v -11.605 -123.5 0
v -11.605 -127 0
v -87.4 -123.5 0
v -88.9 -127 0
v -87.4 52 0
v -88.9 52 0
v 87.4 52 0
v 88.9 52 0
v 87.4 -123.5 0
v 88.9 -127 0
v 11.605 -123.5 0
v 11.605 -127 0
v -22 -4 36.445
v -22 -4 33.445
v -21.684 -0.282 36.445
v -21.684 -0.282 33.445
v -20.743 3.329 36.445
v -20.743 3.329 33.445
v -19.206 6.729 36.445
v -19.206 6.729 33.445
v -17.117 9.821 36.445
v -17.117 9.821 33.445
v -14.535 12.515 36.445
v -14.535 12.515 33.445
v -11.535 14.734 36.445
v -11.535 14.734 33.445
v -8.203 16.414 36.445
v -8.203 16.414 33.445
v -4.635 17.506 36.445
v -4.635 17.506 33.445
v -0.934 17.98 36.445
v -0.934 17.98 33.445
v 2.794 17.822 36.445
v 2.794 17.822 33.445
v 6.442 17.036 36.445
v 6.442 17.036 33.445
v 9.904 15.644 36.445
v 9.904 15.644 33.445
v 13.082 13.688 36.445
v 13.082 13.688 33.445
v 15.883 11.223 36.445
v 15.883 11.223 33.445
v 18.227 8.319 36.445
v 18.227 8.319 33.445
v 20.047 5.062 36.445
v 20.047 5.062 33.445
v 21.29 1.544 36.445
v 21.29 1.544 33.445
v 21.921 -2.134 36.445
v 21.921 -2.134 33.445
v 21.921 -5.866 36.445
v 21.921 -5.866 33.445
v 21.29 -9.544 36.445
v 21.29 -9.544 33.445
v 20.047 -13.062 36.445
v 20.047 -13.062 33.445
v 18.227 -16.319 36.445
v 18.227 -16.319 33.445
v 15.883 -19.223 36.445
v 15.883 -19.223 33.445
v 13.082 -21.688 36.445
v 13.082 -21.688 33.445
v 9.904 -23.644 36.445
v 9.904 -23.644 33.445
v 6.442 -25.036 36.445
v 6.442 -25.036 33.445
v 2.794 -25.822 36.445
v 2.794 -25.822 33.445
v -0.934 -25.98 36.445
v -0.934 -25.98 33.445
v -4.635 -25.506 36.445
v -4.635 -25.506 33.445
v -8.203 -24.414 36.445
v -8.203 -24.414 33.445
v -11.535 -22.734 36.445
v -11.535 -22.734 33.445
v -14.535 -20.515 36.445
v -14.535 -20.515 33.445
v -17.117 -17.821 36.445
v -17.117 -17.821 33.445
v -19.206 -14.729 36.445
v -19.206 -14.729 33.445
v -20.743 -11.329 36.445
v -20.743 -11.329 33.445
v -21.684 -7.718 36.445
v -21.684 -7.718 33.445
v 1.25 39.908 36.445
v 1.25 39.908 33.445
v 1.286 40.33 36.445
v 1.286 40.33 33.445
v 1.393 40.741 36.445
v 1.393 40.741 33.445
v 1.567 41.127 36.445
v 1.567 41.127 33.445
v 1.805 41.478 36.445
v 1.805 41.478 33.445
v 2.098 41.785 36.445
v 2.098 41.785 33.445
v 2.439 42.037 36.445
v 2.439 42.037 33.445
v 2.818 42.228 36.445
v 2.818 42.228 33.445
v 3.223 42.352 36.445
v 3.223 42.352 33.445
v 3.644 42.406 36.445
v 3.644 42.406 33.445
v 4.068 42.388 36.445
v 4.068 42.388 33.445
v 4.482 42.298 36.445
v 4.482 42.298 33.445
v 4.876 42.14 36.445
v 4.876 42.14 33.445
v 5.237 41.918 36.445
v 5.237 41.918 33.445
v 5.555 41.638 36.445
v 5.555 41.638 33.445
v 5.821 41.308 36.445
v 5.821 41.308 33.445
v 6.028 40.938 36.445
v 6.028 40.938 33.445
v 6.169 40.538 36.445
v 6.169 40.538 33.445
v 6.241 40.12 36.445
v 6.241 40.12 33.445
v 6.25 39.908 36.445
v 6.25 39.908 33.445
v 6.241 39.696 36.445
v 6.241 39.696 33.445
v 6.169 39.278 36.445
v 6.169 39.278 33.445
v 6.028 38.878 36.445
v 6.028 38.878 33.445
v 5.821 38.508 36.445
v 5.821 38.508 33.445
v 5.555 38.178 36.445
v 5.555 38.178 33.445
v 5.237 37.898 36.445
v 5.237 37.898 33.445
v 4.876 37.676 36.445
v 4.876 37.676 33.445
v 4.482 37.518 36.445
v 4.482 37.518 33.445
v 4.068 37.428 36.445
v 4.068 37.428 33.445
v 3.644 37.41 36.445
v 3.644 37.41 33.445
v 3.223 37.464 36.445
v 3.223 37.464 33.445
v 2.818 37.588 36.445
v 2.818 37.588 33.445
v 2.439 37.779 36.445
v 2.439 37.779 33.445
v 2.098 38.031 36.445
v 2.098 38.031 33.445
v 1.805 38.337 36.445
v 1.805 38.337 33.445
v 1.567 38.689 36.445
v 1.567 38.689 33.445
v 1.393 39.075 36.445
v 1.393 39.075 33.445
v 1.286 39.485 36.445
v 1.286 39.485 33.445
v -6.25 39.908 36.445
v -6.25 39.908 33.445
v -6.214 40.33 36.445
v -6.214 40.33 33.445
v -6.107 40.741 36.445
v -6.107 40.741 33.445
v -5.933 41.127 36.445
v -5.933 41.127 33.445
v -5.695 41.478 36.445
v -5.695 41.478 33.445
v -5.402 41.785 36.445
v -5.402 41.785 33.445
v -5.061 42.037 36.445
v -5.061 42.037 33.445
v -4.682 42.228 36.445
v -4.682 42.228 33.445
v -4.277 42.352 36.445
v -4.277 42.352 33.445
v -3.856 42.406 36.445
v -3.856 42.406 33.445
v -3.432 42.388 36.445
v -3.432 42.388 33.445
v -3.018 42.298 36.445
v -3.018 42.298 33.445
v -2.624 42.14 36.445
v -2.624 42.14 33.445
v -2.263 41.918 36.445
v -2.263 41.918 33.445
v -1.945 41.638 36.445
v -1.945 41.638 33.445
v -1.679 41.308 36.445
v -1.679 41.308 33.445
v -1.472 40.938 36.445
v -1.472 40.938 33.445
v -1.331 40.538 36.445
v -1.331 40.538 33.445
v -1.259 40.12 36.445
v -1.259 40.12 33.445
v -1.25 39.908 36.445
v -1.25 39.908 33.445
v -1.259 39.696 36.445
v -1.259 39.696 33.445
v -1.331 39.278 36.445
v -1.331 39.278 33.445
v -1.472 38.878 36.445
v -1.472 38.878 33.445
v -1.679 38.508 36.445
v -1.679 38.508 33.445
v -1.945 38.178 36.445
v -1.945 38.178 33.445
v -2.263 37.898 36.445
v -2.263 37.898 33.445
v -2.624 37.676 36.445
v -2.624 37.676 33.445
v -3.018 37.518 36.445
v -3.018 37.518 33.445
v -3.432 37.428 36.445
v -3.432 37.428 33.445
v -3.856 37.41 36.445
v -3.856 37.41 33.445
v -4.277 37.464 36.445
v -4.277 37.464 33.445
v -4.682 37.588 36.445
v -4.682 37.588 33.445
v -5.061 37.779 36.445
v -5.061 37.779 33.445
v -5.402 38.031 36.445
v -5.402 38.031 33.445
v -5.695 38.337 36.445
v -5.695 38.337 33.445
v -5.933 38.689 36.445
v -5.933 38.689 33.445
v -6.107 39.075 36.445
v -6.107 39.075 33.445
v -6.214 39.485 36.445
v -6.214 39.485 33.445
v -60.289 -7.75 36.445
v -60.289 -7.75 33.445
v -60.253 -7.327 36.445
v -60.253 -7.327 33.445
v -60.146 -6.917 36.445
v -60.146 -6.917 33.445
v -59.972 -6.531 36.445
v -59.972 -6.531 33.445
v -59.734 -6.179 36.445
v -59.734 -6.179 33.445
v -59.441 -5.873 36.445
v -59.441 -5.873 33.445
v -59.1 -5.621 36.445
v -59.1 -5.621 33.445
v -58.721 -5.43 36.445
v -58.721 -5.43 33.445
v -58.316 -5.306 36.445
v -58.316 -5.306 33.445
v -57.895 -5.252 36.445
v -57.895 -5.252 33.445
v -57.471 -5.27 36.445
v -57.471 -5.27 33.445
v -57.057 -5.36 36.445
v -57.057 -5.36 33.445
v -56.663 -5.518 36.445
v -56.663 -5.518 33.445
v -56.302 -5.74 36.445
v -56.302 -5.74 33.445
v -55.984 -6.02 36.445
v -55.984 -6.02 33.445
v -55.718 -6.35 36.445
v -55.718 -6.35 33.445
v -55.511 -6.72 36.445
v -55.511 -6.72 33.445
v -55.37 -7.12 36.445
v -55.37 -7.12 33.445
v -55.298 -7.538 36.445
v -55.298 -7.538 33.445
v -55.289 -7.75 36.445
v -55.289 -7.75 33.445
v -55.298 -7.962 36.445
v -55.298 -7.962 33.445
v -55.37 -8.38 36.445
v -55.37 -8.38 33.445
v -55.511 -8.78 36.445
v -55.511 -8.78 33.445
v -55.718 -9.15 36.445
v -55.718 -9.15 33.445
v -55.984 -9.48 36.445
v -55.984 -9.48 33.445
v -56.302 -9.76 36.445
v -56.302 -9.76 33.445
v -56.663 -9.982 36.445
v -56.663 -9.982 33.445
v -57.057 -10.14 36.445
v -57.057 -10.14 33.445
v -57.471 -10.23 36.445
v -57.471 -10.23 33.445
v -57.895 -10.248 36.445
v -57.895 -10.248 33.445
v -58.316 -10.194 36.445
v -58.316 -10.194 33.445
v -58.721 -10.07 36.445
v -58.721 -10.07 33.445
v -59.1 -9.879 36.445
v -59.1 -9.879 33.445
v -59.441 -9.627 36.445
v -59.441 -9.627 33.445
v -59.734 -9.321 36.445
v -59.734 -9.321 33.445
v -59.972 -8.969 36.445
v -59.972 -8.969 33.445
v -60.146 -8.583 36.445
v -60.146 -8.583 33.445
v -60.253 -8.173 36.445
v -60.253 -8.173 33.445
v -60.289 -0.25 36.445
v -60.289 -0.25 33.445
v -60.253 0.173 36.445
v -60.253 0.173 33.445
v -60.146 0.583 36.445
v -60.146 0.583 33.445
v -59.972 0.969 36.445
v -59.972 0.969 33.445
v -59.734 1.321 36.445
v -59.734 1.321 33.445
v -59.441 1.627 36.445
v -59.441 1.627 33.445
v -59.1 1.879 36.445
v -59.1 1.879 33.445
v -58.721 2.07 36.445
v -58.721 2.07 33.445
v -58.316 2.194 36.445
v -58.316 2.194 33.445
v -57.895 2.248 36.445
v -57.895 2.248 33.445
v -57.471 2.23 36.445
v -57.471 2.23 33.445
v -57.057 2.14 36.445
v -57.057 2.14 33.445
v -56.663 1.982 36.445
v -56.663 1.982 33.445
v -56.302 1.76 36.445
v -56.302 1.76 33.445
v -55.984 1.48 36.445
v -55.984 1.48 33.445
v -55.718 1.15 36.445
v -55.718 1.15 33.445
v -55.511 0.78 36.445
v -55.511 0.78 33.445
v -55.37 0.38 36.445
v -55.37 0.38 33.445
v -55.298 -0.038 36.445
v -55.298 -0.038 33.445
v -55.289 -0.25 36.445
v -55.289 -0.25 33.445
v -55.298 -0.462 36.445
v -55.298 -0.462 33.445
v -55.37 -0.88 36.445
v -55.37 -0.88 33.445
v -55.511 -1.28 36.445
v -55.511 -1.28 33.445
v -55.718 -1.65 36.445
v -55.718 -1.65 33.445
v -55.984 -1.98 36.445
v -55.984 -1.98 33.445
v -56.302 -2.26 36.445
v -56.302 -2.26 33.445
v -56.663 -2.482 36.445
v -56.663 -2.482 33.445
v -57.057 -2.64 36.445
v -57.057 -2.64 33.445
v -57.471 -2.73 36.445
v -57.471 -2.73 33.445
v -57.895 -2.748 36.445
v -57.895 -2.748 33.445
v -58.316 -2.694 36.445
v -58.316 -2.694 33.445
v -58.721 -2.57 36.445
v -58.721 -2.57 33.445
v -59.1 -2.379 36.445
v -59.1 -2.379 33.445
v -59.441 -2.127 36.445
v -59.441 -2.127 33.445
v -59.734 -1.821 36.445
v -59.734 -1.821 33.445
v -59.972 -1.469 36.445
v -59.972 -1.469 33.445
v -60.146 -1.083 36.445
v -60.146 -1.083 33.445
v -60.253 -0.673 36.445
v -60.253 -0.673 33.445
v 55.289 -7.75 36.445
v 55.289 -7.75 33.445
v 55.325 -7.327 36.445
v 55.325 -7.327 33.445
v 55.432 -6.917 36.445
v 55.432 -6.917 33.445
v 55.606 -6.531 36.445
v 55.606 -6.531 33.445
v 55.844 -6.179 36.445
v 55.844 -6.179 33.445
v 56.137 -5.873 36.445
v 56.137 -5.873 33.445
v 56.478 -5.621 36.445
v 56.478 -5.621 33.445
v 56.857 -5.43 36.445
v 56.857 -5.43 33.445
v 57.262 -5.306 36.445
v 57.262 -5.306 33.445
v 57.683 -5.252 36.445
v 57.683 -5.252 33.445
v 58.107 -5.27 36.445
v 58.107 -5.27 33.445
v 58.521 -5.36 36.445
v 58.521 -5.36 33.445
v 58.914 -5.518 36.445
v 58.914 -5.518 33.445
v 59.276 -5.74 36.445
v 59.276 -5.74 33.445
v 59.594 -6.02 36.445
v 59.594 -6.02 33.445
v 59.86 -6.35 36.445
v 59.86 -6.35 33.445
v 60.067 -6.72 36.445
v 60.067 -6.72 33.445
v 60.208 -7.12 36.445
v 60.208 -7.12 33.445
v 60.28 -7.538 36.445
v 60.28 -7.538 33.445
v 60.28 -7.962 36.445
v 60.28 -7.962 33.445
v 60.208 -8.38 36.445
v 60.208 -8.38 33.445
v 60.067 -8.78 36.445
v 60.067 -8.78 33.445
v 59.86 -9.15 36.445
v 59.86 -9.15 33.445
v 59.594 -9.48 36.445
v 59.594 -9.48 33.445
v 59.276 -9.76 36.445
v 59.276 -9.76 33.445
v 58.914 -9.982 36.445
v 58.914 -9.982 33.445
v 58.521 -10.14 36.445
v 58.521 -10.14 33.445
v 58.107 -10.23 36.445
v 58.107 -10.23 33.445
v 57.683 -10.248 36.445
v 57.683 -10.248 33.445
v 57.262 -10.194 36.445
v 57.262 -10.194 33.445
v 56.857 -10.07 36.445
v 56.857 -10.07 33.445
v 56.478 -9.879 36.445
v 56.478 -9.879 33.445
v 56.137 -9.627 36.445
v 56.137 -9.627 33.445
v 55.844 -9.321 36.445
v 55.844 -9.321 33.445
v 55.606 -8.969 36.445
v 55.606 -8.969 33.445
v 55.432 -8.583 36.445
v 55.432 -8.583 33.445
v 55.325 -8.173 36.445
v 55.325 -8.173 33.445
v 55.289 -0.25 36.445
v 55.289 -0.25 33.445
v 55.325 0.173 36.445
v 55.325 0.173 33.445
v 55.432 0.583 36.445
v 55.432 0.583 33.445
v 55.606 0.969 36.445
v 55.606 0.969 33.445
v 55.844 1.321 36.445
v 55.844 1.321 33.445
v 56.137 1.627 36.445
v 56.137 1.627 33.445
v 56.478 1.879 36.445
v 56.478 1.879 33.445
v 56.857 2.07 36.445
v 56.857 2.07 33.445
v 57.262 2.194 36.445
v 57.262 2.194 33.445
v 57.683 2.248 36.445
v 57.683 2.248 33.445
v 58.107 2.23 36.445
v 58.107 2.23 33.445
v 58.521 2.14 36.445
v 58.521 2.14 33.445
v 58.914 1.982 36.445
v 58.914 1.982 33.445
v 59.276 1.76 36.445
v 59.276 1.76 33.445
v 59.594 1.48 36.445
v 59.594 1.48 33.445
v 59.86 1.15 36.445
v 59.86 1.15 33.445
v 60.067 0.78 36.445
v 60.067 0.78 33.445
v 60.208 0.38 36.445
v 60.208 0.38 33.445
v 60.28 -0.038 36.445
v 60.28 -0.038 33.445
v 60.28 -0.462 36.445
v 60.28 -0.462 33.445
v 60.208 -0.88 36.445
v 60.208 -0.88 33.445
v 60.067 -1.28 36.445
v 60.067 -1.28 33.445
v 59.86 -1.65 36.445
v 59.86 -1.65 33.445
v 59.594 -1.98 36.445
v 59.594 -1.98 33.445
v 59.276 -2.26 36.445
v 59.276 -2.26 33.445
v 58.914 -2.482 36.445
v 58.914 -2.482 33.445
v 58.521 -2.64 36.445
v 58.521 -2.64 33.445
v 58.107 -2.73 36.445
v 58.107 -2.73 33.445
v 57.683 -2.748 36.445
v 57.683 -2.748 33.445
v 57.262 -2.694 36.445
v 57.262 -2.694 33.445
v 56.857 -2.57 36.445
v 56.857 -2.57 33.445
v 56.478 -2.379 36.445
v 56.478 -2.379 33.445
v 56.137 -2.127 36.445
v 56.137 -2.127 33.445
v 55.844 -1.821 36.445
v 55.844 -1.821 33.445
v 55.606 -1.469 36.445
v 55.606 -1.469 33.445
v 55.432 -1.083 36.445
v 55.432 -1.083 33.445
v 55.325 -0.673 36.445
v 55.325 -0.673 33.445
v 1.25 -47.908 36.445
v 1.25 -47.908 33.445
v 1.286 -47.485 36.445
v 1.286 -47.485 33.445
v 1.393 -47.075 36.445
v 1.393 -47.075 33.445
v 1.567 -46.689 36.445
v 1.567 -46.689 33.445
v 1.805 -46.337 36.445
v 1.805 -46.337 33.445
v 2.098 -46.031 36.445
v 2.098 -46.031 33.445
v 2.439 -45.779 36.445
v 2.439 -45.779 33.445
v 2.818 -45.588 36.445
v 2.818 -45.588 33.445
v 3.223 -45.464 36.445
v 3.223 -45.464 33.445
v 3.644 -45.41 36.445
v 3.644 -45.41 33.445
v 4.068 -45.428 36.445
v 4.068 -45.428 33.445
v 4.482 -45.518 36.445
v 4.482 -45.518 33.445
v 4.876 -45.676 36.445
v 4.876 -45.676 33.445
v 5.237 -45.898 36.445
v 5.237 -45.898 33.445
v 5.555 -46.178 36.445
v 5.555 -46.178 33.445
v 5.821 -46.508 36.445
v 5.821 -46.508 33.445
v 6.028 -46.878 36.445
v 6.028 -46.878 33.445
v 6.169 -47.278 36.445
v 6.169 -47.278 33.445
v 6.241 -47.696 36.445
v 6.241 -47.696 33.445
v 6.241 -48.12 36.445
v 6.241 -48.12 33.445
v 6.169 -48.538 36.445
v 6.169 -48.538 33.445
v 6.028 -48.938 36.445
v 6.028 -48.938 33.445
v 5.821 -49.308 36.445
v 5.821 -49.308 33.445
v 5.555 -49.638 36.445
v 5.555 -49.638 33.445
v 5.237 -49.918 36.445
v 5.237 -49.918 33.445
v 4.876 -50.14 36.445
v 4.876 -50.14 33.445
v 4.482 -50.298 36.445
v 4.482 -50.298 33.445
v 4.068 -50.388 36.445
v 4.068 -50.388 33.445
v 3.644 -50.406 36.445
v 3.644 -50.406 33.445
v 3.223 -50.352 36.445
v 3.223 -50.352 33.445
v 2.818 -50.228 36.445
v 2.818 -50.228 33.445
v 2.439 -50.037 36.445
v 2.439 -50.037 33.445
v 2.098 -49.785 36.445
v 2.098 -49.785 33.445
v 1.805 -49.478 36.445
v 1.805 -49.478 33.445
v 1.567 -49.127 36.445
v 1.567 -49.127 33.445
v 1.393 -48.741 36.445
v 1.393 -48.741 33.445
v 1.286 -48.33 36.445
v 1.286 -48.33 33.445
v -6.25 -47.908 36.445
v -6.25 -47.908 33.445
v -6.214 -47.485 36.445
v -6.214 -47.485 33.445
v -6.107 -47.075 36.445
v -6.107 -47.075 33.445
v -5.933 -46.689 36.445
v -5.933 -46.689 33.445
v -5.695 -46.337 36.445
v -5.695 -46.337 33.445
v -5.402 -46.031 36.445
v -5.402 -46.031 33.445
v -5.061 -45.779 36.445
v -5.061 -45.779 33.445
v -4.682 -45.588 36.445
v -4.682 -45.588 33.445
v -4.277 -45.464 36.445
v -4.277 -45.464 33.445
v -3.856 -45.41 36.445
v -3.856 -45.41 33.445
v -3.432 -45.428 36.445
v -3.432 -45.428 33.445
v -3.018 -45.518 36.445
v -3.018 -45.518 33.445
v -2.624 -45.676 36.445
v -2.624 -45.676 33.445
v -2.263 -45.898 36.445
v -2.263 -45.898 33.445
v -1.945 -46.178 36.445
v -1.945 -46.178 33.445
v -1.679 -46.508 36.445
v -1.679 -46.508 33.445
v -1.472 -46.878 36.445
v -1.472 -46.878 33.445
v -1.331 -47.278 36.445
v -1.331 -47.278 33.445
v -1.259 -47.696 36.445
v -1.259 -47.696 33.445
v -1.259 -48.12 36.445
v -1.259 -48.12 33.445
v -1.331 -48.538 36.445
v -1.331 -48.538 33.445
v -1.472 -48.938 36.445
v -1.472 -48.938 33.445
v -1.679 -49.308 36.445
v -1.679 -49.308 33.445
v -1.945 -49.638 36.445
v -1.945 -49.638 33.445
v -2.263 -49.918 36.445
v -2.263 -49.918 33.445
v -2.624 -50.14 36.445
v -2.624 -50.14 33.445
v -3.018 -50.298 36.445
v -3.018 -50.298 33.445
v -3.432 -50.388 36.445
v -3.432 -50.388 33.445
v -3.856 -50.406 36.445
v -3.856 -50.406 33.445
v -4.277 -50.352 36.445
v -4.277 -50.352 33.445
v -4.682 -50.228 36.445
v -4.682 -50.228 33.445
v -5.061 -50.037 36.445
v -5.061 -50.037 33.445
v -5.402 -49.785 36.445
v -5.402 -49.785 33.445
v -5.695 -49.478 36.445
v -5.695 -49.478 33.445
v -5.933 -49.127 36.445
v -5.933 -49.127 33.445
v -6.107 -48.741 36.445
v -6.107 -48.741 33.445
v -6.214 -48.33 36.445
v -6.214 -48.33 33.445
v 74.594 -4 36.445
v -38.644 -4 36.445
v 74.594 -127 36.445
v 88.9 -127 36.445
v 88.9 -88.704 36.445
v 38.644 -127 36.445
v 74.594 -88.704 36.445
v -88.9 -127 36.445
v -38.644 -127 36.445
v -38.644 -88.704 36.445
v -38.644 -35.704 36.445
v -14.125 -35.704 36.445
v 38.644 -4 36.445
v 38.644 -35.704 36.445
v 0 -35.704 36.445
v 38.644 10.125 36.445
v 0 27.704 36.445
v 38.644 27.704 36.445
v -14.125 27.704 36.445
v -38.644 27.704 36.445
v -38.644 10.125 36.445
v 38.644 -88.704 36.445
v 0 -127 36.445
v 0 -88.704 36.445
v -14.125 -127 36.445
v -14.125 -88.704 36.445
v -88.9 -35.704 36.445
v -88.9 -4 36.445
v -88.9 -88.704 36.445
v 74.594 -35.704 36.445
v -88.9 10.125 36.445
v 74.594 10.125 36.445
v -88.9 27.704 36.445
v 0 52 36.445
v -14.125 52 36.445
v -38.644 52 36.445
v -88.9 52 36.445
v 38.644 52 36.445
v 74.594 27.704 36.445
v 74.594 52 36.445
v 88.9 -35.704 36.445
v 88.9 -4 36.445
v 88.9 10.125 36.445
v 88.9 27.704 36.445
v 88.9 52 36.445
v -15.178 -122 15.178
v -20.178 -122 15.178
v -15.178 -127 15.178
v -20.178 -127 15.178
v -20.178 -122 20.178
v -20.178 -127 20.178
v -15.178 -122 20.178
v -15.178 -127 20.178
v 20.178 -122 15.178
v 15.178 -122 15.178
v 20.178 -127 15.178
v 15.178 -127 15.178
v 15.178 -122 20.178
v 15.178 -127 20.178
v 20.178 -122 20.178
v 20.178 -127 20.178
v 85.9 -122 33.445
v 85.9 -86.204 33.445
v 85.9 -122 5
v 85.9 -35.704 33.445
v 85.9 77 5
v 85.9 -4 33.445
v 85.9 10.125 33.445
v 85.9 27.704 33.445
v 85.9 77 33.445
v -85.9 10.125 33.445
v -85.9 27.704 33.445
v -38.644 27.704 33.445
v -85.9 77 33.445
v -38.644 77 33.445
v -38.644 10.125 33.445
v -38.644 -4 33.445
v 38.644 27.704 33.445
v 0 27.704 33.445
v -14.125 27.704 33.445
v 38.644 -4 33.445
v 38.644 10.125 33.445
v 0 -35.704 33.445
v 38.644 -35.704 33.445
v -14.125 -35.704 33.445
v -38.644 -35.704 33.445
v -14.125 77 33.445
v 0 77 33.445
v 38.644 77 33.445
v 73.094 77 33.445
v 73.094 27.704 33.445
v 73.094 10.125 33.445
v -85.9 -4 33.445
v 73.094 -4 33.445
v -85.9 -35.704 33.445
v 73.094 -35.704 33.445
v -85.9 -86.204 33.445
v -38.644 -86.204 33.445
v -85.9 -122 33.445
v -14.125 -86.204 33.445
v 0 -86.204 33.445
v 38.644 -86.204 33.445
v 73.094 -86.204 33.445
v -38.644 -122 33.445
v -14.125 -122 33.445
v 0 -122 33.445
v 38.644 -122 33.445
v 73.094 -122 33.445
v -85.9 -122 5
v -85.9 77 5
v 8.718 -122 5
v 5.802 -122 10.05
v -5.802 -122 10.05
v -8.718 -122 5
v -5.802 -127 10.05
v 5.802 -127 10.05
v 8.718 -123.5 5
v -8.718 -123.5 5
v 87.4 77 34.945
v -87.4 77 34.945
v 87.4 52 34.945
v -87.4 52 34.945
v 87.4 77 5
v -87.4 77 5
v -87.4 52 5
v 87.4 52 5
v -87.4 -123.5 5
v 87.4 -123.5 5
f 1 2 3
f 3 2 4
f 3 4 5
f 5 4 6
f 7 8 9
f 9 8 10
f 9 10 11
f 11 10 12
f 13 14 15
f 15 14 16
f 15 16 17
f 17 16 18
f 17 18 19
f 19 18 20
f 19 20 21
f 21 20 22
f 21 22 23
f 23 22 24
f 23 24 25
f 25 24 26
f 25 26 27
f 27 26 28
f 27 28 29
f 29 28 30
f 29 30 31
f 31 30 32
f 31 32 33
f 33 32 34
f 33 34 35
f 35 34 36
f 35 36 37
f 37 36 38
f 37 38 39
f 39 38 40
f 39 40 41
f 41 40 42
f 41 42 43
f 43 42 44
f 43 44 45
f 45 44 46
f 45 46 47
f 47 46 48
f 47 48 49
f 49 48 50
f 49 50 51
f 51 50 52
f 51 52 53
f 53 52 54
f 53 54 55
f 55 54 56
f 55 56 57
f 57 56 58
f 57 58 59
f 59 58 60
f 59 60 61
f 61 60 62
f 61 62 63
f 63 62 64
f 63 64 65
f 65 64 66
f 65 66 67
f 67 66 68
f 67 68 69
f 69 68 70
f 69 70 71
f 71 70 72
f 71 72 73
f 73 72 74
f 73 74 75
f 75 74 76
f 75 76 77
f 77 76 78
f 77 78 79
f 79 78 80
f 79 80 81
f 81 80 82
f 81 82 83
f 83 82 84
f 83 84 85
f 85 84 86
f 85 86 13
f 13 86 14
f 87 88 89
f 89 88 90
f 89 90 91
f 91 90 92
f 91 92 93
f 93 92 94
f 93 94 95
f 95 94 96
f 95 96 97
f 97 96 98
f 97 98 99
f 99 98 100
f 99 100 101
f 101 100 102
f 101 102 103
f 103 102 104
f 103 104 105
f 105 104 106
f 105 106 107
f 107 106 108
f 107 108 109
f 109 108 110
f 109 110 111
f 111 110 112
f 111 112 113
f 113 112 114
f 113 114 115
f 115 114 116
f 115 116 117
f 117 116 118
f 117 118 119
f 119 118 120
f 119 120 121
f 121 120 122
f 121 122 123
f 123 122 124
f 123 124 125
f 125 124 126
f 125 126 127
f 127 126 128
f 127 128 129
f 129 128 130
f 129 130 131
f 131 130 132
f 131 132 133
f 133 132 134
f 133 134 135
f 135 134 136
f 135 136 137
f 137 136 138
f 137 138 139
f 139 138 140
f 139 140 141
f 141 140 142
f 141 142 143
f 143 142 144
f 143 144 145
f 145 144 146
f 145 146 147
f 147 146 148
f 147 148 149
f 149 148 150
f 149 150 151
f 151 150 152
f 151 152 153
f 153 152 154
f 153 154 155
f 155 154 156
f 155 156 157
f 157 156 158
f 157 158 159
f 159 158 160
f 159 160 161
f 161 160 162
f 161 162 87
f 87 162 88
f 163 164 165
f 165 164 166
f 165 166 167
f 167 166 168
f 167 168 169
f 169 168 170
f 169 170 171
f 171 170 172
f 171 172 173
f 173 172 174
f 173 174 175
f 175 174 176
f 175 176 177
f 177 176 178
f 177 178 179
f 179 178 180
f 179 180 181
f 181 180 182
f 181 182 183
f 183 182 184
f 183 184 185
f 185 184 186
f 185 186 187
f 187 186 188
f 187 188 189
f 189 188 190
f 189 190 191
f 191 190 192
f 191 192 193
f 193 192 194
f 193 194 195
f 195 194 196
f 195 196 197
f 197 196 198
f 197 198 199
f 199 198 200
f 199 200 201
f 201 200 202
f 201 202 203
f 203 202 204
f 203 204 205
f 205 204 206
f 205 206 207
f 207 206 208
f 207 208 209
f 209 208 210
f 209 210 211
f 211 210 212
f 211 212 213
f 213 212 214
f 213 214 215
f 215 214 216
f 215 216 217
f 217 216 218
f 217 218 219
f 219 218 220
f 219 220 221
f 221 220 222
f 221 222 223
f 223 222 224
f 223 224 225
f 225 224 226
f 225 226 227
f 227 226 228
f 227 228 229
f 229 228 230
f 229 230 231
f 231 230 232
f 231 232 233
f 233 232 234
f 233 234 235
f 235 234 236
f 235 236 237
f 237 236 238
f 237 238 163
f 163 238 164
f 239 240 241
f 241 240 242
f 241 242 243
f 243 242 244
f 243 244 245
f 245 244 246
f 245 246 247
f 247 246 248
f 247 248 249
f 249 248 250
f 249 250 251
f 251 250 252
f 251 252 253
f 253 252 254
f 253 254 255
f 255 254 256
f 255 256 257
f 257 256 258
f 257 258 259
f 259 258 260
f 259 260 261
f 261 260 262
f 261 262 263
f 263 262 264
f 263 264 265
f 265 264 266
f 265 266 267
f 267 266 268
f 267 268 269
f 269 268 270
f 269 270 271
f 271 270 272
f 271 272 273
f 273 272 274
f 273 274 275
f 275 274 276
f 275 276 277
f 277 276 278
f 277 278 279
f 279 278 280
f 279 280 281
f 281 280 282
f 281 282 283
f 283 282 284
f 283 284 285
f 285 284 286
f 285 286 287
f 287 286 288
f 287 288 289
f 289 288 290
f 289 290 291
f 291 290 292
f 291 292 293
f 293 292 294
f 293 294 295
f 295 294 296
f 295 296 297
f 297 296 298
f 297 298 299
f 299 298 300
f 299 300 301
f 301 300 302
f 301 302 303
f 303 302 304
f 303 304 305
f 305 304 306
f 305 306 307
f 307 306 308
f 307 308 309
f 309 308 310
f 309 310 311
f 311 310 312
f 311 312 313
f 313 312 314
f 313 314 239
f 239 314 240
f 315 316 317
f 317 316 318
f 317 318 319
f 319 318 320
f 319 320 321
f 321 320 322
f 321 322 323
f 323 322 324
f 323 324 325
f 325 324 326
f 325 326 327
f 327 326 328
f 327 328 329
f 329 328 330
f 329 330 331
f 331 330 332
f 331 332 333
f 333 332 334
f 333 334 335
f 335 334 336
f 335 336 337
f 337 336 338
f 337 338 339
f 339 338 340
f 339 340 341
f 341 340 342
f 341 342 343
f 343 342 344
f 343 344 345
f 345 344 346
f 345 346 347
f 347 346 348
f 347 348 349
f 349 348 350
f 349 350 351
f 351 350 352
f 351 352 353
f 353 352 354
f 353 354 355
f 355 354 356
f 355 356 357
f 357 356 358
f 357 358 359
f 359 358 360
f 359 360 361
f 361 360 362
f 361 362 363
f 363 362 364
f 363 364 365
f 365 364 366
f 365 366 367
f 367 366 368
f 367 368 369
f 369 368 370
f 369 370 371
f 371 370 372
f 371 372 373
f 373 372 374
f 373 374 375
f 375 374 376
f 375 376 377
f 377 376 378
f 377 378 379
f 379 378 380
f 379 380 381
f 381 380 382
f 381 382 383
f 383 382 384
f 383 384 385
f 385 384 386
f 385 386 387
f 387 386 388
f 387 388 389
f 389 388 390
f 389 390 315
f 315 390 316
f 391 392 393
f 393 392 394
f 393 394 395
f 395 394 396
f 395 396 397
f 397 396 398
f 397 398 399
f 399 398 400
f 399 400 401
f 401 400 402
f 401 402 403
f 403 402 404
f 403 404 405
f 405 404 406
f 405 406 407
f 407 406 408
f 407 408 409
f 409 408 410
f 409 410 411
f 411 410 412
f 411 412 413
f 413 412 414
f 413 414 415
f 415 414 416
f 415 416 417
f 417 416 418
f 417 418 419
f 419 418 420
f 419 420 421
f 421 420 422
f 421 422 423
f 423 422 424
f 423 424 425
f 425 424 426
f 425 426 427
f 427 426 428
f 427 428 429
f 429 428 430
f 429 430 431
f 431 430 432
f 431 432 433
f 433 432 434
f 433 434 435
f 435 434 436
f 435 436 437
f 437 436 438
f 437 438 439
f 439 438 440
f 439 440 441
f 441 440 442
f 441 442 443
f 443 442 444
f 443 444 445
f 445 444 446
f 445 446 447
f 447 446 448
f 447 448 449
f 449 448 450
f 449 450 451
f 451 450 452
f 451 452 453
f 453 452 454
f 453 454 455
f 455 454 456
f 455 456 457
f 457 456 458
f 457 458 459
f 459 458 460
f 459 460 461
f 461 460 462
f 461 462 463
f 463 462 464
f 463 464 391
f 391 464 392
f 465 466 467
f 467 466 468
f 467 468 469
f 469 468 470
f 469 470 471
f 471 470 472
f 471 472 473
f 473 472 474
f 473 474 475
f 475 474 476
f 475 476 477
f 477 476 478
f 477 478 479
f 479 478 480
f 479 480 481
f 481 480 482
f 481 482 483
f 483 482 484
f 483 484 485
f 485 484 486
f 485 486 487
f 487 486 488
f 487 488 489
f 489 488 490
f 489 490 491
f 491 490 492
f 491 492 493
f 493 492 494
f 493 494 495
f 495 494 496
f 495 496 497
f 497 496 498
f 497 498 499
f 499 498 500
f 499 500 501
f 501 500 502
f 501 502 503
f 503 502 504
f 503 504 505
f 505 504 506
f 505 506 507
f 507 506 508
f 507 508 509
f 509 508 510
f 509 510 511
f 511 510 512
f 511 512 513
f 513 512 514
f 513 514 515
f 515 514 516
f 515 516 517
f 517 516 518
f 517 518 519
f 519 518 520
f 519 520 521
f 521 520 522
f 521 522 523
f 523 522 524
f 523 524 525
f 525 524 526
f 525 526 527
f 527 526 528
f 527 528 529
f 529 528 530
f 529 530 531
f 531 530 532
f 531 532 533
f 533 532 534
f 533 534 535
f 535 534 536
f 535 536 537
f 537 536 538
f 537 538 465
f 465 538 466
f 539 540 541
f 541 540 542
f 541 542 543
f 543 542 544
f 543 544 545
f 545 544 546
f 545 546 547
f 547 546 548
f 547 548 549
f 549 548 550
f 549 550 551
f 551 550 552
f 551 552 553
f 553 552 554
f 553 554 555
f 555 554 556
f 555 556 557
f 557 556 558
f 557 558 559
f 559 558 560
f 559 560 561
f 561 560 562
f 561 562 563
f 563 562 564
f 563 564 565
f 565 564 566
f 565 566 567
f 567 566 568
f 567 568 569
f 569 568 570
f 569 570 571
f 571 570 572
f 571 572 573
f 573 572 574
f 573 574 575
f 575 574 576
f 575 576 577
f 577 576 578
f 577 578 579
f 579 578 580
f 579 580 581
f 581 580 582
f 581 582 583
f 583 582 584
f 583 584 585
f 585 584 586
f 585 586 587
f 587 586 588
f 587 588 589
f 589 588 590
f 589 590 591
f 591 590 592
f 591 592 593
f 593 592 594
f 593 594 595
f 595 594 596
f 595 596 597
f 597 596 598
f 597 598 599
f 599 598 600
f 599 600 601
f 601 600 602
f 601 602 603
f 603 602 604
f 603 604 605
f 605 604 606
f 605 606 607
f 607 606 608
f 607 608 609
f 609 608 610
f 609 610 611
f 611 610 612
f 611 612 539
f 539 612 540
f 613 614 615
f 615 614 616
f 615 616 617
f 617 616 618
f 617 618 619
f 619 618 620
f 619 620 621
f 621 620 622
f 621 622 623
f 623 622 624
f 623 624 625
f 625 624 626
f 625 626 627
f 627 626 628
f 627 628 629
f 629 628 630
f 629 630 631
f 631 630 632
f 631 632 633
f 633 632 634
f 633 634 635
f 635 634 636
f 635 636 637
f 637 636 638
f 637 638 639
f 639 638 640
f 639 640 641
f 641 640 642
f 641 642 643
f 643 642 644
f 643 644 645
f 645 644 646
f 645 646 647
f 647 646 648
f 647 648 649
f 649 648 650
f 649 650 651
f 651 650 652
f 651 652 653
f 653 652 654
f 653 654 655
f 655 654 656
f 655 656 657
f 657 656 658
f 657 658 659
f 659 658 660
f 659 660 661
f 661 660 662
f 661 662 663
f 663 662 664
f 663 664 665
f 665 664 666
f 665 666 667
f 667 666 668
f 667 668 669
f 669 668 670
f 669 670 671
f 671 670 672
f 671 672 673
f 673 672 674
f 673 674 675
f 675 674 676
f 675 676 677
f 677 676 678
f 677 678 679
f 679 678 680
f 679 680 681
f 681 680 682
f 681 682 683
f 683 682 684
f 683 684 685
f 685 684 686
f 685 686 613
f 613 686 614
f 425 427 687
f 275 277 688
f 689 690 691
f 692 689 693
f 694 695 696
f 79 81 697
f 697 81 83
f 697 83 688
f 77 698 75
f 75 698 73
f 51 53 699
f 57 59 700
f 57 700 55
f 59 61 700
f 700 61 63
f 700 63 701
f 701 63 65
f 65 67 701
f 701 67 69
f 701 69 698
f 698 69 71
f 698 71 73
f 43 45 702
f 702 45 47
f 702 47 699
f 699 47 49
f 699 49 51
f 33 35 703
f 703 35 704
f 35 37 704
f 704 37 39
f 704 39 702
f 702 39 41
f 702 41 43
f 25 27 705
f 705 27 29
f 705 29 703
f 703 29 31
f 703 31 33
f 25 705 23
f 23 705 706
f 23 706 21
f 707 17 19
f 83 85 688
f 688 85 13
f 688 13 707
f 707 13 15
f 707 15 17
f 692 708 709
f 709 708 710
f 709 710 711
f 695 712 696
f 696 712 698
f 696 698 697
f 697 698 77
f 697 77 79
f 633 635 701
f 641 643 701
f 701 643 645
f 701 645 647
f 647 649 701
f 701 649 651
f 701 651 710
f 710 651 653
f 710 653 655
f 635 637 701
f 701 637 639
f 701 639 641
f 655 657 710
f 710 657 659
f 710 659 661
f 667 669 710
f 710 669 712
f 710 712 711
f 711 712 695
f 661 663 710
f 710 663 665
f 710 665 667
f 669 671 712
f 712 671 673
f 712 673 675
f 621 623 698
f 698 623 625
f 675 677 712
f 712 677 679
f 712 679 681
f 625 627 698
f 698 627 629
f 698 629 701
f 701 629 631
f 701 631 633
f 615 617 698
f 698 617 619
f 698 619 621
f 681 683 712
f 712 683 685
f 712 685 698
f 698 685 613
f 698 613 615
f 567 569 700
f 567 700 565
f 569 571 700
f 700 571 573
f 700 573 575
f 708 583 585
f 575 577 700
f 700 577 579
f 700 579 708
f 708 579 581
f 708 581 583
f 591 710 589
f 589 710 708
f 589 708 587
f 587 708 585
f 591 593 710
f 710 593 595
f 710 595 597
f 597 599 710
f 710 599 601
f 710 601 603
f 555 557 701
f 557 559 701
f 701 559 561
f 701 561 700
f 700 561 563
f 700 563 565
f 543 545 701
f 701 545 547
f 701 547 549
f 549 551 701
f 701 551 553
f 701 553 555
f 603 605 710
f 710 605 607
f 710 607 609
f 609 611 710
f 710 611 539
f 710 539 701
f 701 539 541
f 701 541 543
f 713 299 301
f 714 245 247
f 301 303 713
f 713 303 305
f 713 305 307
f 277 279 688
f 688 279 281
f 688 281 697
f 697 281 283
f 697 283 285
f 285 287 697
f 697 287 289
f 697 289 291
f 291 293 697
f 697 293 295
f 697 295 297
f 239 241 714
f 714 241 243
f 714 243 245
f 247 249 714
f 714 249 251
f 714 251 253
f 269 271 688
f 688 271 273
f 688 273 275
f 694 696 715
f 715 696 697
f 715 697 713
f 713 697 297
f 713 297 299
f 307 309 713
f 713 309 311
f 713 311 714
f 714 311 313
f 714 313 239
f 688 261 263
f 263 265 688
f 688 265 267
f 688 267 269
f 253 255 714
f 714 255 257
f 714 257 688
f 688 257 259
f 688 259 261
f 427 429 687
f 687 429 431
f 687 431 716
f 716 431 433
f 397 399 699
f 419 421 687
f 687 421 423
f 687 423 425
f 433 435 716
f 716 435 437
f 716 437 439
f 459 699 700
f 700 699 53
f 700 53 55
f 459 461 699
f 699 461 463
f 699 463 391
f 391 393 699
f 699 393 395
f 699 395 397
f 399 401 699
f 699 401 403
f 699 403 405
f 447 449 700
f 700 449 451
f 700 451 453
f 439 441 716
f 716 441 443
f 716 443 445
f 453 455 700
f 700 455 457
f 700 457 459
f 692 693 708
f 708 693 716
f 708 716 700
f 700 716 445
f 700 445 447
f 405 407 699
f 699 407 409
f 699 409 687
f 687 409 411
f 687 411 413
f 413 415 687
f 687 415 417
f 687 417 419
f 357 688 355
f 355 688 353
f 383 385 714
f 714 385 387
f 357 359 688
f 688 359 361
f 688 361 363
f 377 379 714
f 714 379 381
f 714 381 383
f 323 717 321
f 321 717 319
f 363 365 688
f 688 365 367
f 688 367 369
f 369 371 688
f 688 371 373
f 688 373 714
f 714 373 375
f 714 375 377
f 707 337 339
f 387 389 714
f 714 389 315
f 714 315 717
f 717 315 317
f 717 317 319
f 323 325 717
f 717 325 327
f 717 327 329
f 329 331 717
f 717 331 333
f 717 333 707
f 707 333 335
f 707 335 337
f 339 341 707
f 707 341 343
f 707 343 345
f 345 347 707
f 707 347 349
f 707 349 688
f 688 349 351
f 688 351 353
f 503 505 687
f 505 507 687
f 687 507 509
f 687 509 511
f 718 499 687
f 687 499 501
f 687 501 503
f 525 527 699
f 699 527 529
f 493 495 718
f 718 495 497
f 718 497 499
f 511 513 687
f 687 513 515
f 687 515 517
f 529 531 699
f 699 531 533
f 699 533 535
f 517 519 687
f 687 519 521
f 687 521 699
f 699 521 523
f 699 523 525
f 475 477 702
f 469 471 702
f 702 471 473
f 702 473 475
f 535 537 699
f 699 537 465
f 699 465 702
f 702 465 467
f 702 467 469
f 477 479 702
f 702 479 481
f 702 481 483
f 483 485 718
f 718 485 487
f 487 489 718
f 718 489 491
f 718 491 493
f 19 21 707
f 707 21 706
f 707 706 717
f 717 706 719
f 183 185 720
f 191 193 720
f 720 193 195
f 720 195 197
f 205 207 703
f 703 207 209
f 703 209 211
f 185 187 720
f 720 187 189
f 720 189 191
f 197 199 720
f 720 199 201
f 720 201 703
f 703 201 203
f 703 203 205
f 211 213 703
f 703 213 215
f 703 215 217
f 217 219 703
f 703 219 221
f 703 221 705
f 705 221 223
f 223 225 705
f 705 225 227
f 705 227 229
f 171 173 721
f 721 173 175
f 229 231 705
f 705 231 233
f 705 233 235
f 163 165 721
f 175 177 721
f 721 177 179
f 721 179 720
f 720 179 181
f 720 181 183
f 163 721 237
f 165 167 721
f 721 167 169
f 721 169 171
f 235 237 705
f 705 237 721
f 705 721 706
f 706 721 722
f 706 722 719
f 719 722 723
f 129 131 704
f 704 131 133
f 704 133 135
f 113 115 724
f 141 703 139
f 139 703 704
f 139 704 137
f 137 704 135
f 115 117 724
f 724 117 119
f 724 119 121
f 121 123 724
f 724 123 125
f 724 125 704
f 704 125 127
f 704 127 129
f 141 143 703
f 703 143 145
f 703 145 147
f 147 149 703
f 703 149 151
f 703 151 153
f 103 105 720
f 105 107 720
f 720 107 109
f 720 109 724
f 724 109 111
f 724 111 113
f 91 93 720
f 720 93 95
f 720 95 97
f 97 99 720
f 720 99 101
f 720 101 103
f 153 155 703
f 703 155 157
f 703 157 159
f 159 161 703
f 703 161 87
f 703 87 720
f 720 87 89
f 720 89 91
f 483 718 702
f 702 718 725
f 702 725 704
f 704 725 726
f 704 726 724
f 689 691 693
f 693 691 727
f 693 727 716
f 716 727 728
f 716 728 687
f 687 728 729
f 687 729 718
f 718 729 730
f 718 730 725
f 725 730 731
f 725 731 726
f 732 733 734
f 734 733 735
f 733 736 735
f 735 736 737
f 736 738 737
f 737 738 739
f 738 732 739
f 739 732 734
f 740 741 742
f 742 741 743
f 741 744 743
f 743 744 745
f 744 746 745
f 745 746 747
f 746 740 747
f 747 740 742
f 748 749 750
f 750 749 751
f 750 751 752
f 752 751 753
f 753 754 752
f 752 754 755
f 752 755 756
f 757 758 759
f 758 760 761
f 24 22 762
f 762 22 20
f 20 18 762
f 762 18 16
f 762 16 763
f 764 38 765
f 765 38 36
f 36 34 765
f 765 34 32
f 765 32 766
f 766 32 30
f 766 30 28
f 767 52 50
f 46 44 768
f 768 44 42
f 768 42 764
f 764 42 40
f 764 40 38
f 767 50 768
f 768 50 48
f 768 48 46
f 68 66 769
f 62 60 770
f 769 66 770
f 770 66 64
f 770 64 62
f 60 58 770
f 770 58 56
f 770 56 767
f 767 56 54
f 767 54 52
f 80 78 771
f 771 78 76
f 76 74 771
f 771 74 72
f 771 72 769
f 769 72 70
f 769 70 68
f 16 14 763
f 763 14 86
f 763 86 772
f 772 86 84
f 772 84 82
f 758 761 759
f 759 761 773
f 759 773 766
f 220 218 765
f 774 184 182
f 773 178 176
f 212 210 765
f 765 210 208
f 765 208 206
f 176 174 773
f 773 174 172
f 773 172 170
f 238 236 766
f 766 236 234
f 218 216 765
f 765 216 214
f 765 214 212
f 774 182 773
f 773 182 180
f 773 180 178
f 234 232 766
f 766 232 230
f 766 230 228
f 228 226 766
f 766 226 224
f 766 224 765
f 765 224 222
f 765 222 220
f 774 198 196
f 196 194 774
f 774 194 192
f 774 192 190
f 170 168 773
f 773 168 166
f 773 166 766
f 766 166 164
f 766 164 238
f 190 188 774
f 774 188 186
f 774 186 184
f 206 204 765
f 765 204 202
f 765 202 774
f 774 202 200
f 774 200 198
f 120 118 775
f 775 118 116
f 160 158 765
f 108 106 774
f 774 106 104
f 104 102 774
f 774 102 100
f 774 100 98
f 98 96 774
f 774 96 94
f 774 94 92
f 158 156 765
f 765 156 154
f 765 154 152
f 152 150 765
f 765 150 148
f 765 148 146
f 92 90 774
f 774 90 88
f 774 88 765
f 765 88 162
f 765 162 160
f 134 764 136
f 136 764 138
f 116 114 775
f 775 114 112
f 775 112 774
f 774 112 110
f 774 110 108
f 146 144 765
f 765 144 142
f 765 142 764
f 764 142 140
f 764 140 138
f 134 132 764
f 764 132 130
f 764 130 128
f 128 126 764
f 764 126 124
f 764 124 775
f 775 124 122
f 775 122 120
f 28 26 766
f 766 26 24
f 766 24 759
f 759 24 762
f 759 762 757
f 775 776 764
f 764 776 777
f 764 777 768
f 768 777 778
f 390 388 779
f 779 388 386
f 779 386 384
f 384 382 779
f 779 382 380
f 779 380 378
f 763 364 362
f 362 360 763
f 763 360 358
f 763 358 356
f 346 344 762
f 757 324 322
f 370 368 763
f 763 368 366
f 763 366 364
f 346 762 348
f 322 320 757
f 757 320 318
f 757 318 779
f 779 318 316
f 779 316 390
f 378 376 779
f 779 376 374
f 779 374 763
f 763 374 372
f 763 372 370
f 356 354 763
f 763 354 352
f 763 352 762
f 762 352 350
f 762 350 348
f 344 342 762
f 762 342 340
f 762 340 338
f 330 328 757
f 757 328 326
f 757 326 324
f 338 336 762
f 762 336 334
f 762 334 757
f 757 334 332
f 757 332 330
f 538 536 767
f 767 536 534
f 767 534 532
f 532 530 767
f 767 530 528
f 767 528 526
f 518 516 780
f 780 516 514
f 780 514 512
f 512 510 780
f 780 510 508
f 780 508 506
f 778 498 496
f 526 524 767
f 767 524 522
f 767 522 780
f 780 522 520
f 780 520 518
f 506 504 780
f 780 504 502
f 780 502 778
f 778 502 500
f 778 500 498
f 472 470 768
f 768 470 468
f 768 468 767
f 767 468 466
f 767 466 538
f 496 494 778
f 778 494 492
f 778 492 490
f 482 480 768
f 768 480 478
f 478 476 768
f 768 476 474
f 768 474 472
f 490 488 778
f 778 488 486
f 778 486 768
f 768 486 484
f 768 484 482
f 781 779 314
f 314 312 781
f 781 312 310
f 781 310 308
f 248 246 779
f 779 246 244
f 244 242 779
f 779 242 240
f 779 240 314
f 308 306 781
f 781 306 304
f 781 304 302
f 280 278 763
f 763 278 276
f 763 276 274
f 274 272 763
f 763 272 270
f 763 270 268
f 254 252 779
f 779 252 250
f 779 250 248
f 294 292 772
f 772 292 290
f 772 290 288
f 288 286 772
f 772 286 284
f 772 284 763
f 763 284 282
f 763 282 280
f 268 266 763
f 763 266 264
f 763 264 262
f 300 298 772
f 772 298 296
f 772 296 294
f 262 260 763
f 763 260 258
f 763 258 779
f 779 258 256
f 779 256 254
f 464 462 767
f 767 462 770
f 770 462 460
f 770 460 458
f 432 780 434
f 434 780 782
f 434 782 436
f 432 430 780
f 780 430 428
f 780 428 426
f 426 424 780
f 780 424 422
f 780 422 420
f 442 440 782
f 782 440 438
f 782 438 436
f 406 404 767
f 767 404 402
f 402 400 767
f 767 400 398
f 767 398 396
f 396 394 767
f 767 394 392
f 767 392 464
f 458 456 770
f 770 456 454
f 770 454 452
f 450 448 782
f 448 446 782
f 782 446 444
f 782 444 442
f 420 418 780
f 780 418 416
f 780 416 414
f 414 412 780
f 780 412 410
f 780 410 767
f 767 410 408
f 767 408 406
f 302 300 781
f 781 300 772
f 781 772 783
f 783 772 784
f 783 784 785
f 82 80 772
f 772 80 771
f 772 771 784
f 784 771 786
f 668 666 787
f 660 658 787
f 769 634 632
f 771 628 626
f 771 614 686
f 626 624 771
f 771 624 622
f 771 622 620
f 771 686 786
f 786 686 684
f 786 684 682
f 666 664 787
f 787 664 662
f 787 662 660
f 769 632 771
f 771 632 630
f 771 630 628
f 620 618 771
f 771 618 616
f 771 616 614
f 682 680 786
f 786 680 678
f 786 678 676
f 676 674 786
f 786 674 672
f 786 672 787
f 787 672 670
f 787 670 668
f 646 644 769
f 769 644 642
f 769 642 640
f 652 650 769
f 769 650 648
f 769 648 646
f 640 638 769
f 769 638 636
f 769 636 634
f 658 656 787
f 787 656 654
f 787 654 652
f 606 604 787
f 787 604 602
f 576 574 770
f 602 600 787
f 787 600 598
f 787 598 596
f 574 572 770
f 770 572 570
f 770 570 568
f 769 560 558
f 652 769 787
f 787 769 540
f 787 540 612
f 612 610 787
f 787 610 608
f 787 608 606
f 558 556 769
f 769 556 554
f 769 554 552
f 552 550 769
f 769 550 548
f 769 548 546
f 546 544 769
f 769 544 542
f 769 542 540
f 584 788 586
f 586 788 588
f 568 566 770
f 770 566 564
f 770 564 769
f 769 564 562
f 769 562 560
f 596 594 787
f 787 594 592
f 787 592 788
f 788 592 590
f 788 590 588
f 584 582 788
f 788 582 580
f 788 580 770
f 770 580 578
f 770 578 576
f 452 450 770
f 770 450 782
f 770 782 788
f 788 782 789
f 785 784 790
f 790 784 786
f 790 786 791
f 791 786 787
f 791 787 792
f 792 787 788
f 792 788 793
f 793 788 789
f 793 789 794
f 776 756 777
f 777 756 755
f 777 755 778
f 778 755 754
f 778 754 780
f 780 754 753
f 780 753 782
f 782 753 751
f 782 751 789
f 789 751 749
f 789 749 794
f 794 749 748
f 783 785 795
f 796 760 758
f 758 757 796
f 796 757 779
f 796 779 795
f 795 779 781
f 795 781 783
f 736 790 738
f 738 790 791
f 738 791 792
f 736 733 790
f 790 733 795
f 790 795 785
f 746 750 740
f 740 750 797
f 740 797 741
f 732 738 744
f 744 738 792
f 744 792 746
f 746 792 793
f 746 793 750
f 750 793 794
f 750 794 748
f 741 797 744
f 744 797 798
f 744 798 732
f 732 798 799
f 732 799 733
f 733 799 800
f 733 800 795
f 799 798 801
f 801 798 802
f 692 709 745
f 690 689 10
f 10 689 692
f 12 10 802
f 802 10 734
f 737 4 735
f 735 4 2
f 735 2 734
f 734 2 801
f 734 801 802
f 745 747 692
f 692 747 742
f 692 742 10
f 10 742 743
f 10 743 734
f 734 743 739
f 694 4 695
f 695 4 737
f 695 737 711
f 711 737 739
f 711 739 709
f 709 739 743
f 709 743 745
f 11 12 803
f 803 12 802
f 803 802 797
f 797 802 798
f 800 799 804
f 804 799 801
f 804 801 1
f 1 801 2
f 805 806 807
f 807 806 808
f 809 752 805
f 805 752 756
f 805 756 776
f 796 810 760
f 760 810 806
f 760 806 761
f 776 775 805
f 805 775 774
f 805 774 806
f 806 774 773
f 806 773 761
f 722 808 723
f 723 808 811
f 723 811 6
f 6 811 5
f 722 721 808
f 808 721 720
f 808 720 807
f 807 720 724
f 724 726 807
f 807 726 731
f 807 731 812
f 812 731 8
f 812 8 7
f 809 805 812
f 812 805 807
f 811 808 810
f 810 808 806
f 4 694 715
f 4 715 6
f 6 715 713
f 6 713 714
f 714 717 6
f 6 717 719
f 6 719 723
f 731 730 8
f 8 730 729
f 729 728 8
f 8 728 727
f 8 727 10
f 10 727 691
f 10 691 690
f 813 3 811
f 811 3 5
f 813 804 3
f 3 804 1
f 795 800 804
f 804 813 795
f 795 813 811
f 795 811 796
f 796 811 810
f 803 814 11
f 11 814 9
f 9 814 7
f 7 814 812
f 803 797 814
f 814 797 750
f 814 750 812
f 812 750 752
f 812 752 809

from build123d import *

# Parameters (mm, degrees)
SKETCH1_W           = 177.8
SKETCH1_H           = 254
BOSS_EXTRUDE1_DEPTH = 36.445
SHELL1_T            = 3
SKETCH2_R           = 22
SKETCH2_R_2         = 2.5
CUT_EXTRUDE1_DEPTH  = 3
SKETCH3_R           = 5
CUT_EXTRUDE2_DEPTH  = 3
SKETCH12_W          = 12
SKETCH12_H          = 66.89
BOSS_EXTRUDE5_DEPTH = 8
SKETCH10_R          = 3
CUT_EXTRUDE8_DEPTH  = 8
SKETCH13_W          = 174.8
SKETCH13_H          = 69.89
SKETCH13_W_2        = 171.8
SKETCH13_H_2        = 66.89
BOSS_EXTRUDE6_DEPTH = 25
SKETCH14_W          = 175.3
SKETCH14_H          = 70.39
SKETCH14_W_2        = 171.8
SKETCH14_H_2        = 66.89
CUT_EXTRUDE9_DEPTH  = 10
SKETCH17_W          = 171.8
SKETCH17_H          = 66.89
BOSS_EXTRUDE7_DEPTH = 2
SKETCH22_W          = 5
SKETCH22_H          = 5
CUT_EXTRUDE14_DEPTH = 5
BOSS_EXTRUDE8_DEPTH = 5
CUT_EXTRUDE12_DEPTH = 5
SKETCH21_W          = 23.209480822
SKETCH21_H          = 1.5
CUT_EXTRUDE13_DEPTH = 5


with BuildPart() as part:
    # Sketch1 → Boss-Extrude1 (new, symmetric)
    with BuildSketch(Plane.XY):
        Rectangle(SKETCH1_W, SKETCH1_H)
    extrude(amount=BOSS_EXTRUDE1_DEPTH, both=True)

    # Shell1 (no face opened: a closed hollow body)
    add(offset(amount=-SHELL1_T, mode=Mode.PRIVATE), mode=Mode.SUBTRACT)

    # Sketch2 → Cut-Extrude1 (cut)
    with BuildSketch(Plane(origin=(0, 0, 33.445), x_dir=(-1, 0, 0), z_dir=(0, 0, -1))):
        with Locations((0, -4)):
            Circle(SKETCH2_R)
        with Locations((-3.75, -47.907937278)):
            Circle(SKETCH2_R_2)
        with Locations((3.75, -47.907937278)):
            Circle(SKETCH2_R_2)
        with Locations((-57.788969133, -0.25)):
            Circle(SKETCH2_R_2)
        with Locations((-57.788969133, -7.75)):
            Circle(SKETCH2_R_2)
        with Locations(Location((57.788969133, -0.25, 0), (0, 0, 180))):
            Circle(SKETCH2_R_2)
        with Locations(Location((57.788969133, -7.75, 0), (0, 0, 180))):
            Circle(SKETCH2_R_2)
        with Locations(Location((3.75, 39.907937278, 0), (0, 0, 180))):
            Circle(SKETCH2_R_2)
        with Locations(Location((-3.75, 39.907937278, 0), (0, 0, 180))):
            Circle(SKETCH2_R_2)
    extrude(amount=-CUT_EXTRUDE1_DEPTH, mode=Mode.SUBTRACT)

    # Sketch3 → Cut-Extrude2 (cut)
    with BuildSketch(Plane.XY.offset(-33.445)):
        with Locations((-20.9, 34)):
            Circle(SKETCH3_R)
    extrude(amount=-CUT_EXTRUDE2_DEPTH, mode=Mode.SUBTRACT)

    # Sketch12 → Boss-Extrude5 (add)
    with BuildSketch(Plane.XZ.offset(-124)):
        Rectangle(SKETCH12_W, SKETCH12_H)
    extrude(amount=BOSS_EXTRUDE5_DEPTH)

    # Sketch10 → Cut-Extrude8 (cut)
    with BuildSketch(Plane(origin=(0, 127, 0), x_dir=(1, 0, 0), z_dir=(0, 1, 0))):
        with Locations(Location((0, 0, 0), (0, 0, 270))):
            Circle(SKETCH10_R)
    extrude(amount=-CUT_EXTRUDE8_DEPTH, mode=Mode.SUBTRACT)


with BuildPart() as body_2:
    # Split2: the piece on the far side of the plane
    add(part.part)
    split(bisect_by=Plane.ZX.offset(52), keep=Keep.BOTTOM)

    # Sketch13 → Boss-Extrude6 (add)
    with BuildSketch(Plane(origin=(0, 52, 0), x_dir=(1, 0, 0), z_dir=(0, 1, 0))):
        Rectangle(SKETCH13_W, SKETCH13_H)
        Rectangle(SKETCH13_W_2, SKETCH13_H_2, mode=Mode.SUBTRACT)
    extrude(amount=BOSS_EXTRUDE6_DEPTH)

    # Sketch17 → Boss-Extrude7 (add)
    with BuildSketch(Plane(origin=(0, -124, 0), x_dir=(1, 0, 0), z_dir=(0, 1, 0))):
        Rectangle(SKETCH17_W, SKETCH17_H)
    extrude(amount=BOSS_EXTRUDE7_DEPTH)

    # Sketch22 → Cut-Extrude14 (cut)
    with BuildSketch(Plane.XZ.offset(127)):
        Polygon((11.604740411, 0), (5.802370205, 10.05), (-5.802370205, 10.05), (-11.604740411, 0), (-5.802370205, -10.05), (5.802370205, -10.05), align=None)
        with Locations((-17.67766953, 17.67766953)):
            Rectangle(SKETCH22_W, SKETCH22_H)
        with Locations((17.67766953, 17.67766953)):
            Rectangle(SKETCH22_W, SKETCH22_H)
        with Locations((17.67766953, -17.67766953)):
            Rectangle(SKETCH22_W, SKETCH22_H)
        with Locations((-17.67766953, -17.67766953)):
            Rectangle(SKETCH22_W, SKETCH22_H)
    extrude(amount=-CUT_EXTRUDE14_DEPTH, mode=Mode.SUBTRACT)


with BuildPart() as part_1:
    add(part.part)

    # Split2
    split(bisect_by=Plane.ZX.offset(52), keep=Keep.TOP)

    # Sketch14 → Cut-Extrude9 (cut)
    with BuildSketch(Plane.XZ.offset(-52)):
        Rectangle(SKETCH14_W, SKETCH14_H)
        Rectangle(SKETCH14_W_2, SKETCH14_H_2, mode=Mode.SUBTRACT)
    extrude(amount=-CUT_EXTRUDE9_DEPTH, mode=Mode.SUBTRACT)


with BuildPart() as body_3:
    # Split3: the piece on the far side of the plane
    add(body_2.part)
    split(bisect_by=Plane.XY, keep=Keep.BOTTOM)

    # Sketch19 → Boss-Extrude8 (add)
    with BuildSketch(Plane.XY):
        Polygon((-87.4, 77), (-85.9, 77), (-85.9, 75.5), (-85.9, -122), (-11.604740411, -122), (-11.604740411, -123.5), (-87.4, -123.5), align=None)
        Polygon((87.4, 77), (87.4, -123.5), (11.604740411, -123.5), (11.604740411, -122), (85.9, -122), (85.9, 75.5), (85.9, 77), align=None)
    extrude(amount=BOSS_EXTRUDE8_DEPTH)


with BuildPart() as body_2_1:
    add(body_2.part)

    # Split3
    split(bisect_by=Plane.XY, keep=Keep.TOP)

    # Sketch20 → Cut-Extrude12 (cut)
    with BuildSketch(Plane(origin=(0, 0, 0), x_dir=(-1, 0, 0), z_dir=(0, 0, -1))):
        Polygon((-87.4, 77), (-87.4, -123.5), (-11.604740411, -123.5), (-11.604740411, -122), (-85.9, -122), (-85.9, 77), align=None)
        Polygon((85.9, 77), (85.9, -122), (11.604740411, -122), (11.604740411, -123.5), (87.4, -123.5), (87.4, 77), align=None)
    extrude(amount=-CUT_EXTRUDE12_DEPTH, mode=Mode.SUBTRACT)

    # Sketch21 → Cut-Extrude13 (cut)
    with BuildSketch(Plane(origin=(0, 0, 0), x_dir=(-1, 0, 0), z_dir=(0, 0, -1))):
        with Locations((0, -122.75)):
            Rectangle(SKETCH21_W, SKETCH21_H)
    extrude(amount=-CUT_EXTRUDE13_DEPTH, mode=Mode.SUBTRACT)


solid = body_2_1.part
